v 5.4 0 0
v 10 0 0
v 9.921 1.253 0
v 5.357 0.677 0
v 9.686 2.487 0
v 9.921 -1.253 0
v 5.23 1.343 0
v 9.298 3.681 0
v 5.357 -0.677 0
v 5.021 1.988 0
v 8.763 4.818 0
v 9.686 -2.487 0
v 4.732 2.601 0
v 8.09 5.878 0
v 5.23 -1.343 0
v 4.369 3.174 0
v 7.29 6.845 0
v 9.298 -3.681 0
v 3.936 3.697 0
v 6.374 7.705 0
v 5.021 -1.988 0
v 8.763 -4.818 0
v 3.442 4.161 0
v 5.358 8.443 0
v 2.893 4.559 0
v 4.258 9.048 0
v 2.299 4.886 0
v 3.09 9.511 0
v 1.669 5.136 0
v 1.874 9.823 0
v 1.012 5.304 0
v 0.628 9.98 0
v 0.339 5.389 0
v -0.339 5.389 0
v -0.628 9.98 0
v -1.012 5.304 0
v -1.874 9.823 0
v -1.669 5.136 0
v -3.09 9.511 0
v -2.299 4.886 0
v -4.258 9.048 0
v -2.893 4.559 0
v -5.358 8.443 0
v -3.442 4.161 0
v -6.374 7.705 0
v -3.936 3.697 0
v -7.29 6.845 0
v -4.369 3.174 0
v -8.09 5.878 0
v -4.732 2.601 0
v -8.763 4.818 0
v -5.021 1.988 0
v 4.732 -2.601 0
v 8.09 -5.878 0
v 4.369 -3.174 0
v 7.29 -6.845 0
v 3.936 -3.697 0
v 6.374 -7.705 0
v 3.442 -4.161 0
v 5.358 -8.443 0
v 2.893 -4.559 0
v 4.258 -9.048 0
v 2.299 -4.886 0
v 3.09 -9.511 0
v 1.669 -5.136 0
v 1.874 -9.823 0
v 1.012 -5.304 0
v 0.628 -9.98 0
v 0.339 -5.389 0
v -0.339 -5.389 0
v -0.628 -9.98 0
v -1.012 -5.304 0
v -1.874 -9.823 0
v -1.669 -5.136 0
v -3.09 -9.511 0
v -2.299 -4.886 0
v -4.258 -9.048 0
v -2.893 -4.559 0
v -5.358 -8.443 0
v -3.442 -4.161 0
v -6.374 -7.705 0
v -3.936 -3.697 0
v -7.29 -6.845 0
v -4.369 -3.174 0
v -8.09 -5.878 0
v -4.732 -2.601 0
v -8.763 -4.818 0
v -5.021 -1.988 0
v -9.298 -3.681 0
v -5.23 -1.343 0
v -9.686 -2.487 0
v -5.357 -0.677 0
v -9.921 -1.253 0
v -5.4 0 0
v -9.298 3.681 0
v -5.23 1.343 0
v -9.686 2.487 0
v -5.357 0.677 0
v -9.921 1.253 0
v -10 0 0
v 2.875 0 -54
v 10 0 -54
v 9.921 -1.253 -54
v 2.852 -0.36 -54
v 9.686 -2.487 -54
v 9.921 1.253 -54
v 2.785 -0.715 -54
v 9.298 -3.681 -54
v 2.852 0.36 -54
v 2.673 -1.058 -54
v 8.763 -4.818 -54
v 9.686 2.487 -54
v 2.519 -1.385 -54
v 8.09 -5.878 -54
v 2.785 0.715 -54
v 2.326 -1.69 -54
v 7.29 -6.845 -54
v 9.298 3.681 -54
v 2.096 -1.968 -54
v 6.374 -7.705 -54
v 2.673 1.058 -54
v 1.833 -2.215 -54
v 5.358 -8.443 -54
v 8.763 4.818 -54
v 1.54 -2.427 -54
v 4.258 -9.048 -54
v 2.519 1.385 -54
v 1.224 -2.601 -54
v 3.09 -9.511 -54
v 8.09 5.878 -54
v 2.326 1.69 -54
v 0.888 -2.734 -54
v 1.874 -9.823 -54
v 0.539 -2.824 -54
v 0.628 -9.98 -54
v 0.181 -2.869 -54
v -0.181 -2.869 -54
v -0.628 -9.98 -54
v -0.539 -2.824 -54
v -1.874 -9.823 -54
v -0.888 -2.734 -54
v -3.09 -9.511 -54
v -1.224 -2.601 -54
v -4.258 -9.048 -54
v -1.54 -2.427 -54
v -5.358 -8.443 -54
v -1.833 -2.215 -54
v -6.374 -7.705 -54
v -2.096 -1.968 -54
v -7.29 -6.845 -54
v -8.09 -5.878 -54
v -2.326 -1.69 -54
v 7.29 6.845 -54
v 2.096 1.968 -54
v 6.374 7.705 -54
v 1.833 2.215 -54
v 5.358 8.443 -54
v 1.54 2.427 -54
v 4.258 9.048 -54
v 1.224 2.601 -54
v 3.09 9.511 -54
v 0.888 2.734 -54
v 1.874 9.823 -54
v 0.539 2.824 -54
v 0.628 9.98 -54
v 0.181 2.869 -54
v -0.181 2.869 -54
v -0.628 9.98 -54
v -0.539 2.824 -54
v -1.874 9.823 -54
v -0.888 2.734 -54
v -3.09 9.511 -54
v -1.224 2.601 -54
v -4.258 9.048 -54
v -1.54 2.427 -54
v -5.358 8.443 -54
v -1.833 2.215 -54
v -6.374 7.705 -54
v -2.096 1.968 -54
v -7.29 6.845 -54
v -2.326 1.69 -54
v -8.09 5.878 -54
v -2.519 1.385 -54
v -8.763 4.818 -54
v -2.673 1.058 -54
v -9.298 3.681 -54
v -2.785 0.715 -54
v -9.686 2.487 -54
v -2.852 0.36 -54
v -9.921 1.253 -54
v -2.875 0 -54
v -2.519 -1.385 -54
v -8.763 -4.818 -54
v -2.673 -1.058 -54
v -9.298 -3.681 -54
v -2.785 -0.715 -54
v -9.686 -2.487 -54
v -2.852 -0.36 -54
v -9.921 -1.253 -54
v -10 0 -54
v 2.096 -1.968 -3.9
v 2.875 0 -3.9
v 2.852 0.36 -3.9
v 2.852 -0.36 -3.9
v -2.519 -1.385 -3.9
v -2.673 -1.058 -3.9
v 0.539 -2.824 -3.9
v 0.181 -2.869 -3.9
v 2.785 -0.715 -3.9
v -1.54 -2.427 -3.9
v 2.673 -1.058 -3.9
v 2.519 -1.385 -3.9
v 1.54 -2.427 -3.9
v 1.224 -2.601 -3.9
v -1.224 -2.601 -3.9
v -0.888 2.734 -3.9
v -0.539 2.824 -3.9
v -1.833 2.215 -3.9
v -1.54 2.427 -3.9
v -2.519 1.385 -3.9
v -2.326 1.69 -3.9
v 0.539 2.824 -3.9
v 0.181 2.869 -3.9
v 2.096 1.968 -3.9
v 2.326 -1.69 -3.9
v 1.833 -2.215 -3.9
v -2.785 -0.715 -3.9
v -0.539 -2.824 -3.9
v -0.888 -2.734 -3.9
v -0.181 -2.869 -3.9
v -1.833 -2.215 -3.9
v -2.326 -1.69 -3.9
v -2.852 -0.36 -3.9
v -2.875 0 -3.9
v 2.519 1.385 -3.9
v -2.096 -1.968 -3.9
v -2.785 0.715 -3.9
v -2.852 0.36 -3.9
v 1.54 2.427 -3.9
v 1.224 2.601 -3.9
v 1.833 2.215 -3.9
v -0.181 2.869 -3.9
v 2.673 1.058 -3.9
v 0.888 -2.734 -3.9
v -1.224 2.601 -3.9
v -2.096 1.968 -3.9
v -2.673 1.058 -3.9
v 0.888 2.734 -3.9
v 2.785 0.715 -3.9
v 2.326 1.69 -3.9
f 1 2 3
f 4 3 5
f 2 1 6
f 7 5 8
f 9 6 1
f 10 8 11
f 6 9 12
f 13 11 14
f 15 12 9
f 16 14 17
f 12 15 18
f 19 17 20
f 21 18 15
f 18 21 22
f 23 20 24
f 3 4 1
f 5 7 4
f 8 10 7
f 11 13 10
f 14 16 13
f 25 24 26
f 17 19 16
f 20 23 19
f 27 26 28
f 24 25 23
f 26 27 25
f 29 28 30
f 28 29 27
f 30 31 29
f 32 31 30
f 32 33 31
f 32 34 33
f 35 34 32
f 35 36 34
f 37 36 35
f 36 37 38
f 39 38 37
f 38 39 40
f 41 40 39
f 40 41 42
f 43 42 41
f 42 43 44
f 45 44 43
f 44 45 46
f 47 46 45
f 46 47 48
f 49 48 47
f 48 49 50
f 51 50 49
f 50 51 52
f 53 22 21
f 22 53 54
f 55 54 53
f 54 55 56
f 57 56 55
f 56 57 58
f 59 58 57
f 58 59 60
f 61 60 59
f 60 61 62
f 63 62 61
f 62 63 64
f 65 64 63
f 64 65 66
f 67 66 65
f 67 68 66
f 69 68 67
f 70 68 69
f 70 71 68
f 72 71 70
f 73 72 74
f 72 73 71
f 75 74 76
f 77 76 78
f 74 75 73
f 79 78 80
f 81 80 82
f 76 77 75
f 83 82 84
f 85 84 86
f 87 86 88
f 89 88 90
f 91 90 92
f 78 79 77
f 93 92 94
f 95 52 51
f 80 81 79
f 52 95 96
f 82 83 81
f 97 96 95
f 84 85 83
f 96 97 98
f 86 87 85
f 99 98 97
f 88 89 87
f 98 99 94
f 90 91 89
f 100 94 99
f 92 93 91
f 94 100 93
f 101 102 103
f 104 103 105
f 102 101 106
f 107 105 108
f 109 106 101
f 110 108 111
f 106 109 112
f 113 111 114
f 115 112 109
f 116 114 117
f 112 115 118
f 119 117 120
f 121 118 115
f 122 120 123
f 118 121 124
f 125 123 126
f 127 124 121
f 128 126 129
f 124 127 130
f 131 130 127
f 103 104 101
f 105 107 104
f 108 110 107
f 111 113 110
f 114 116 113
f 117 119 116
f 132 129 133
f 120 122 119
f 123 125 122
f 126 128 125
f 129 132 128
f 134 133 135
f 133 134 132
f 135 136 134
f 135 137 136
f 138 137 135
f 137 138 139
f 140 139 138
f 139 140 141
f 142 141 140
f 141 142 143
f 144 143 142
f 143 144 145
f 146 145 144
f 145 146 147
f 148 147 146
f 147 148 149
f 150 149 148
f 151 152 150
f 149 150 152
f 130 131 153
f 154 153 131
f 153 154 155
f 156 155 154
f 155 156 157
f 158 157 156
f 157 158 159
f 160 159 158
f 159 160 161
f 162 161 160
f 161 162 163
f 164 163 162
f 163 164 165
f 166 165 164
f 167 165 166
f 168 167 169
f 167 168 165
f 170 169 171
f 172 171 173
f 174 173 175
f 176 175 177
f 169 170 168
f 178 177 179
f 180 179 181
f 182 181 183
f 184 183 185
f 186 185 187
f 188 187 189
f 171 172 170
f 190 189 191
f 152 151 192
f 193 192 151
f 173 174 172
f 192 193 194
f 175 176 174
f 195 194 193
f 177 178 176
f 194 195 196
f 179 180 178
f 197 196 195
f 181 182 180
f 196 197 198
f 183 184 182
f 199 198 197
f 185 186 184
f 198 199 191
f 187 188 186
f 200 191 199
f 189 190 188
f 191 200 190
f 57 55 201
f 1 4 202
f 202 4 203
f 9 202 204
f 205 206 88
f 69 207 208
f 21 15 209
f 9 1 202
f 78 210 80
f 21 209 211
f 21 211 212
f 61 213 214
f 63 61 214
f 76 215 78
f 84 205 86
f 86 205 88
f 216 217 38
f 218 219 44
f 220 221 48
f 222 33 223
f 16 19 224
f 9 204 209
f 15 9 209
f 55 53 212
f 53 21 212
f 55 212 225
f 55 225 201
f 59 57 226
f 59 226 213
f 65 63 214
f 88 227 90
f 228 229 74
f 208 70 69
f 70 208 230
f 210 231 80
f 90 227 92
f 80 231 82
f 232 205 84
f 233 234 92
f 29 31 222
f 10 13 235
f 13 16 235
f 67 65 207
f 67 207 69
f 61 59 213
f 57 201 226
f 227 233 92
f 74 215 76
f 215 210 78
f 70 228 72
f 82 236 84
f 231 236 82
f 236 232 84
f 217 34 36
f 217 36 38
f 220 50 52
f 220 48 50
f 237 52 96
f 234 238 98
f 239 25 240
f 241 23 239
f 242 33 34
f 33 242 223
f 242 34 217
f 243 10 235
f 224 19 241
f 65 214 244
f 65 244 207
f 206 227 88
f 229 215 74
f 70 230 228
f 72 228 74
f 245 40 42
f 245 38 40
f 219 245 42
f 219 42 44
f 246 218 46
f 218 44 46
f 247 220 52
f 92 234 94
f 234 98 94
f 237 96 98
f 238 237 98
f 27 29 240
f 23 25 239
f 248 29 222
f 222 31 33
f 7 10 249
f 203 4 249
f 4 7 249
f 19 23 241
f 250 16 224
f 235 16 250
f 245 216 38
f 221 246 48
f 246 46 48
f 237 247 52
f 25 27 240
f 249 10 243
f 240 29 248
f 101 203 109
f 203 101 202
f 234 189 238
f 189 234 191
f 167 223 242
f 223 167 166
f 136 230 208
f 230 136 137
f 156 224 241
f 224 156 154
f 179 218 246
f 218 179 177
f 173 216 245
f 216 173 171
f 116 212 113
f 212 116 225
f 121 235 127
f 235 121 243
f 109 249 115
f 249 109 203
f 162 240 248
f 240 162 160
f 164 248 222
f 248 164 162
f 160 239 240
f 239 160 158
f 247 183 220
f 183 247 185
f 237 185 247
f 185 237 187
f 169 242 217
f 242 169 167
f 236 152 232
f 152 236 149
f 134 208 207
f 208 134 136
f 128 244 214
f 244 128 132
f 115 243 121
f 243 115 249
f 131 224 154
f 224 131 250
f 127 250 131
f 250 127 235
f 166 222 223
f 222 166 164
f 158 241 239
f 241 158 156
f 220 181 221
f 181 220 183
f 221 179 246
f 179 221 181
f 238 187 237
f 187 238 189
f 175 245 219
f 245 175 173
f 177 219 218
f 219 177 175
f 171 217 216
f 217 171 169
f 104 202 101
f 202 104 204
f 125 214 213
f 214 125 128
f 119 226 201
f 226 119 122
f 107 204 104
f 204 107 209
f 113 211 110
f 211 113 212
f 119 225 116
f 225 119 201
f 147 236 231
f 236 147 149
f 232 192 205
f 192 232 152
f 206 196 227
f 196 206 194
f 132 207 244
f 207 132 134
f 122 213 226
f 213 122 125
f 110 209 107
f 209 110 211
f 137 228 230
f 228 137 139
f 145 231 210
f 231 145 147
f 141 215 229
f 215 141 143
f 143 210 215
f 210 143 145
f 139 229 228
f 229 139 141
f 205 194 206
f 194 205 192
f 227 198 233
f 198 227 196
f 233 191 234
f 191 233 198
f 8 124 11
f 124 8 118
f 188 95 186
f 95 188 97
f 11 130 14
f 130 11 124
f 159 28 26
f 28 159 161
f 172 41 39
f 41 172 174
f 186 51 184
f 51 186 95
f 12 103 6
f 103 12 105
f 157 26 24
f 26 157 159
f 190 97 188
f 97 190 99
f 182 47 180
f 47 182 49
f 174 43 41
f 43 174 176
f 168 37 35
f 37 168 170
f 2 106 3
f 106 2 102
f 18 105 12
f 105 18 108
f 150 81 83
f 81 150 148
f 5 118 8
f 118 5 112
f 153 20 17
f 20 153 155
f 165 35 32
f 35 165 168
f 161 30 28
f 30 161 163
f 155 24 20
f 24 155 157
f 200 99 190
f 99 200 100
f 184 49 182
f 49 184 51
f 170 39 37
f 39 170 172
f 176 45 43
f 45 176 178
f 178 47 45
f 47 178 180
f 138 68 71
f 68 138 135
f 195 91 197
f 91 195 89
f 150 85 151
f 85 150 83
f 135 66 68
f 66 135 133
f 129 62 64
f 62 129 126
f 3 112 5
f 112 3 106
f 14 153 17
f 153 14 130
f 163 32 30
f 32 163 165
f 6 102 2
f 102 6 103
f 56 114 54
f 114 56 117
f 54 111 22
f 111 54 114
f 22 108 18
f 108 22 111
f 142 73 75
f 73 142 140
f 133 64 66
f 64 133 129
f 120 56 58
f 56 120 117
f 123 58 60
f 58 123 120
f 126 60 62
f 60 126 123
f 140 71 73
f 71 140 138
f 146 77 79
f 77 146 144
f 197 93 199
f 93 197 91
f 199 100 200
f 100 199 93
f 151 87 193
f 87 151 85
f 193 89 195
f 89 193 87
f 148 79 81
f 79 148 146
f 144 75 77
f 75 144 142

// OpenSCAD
$fn = 50;


difference() {
	union() {
		translate(v = [0, 0, -54.0000000000]) {
			cylinder(h = 54, r = 10.0000000000);
		}
		cylinder(h = 0, r = 19.0000000000);
	}
	union() {
		translate(v = [0, 0, 0]) {
			rotate(a = [0, 0, 0]) {
				difference() {
					union() {
						#translate(v = [0, 0, -54.0000000000]) {
							cylinder(h = 54, r = 2.6000000000);
						}
						#translate(v = [0, 0, -3.9000000000]) {
							cylinder(h = 3.9000000000, r1 = 2.8750000000, r2 = 5.4000000000);
						}
						#translate(v = [0, 0, -54.0000000000]) {
							cylinder(h = 54, r = 2.8750000000);
						}
						#translate(v = [0, 0, -54.0000000000]) {
							cylinder(h = 54, r = 2.6000000000);
						}
					}
					union();
				}
			}
		}
	}
}
